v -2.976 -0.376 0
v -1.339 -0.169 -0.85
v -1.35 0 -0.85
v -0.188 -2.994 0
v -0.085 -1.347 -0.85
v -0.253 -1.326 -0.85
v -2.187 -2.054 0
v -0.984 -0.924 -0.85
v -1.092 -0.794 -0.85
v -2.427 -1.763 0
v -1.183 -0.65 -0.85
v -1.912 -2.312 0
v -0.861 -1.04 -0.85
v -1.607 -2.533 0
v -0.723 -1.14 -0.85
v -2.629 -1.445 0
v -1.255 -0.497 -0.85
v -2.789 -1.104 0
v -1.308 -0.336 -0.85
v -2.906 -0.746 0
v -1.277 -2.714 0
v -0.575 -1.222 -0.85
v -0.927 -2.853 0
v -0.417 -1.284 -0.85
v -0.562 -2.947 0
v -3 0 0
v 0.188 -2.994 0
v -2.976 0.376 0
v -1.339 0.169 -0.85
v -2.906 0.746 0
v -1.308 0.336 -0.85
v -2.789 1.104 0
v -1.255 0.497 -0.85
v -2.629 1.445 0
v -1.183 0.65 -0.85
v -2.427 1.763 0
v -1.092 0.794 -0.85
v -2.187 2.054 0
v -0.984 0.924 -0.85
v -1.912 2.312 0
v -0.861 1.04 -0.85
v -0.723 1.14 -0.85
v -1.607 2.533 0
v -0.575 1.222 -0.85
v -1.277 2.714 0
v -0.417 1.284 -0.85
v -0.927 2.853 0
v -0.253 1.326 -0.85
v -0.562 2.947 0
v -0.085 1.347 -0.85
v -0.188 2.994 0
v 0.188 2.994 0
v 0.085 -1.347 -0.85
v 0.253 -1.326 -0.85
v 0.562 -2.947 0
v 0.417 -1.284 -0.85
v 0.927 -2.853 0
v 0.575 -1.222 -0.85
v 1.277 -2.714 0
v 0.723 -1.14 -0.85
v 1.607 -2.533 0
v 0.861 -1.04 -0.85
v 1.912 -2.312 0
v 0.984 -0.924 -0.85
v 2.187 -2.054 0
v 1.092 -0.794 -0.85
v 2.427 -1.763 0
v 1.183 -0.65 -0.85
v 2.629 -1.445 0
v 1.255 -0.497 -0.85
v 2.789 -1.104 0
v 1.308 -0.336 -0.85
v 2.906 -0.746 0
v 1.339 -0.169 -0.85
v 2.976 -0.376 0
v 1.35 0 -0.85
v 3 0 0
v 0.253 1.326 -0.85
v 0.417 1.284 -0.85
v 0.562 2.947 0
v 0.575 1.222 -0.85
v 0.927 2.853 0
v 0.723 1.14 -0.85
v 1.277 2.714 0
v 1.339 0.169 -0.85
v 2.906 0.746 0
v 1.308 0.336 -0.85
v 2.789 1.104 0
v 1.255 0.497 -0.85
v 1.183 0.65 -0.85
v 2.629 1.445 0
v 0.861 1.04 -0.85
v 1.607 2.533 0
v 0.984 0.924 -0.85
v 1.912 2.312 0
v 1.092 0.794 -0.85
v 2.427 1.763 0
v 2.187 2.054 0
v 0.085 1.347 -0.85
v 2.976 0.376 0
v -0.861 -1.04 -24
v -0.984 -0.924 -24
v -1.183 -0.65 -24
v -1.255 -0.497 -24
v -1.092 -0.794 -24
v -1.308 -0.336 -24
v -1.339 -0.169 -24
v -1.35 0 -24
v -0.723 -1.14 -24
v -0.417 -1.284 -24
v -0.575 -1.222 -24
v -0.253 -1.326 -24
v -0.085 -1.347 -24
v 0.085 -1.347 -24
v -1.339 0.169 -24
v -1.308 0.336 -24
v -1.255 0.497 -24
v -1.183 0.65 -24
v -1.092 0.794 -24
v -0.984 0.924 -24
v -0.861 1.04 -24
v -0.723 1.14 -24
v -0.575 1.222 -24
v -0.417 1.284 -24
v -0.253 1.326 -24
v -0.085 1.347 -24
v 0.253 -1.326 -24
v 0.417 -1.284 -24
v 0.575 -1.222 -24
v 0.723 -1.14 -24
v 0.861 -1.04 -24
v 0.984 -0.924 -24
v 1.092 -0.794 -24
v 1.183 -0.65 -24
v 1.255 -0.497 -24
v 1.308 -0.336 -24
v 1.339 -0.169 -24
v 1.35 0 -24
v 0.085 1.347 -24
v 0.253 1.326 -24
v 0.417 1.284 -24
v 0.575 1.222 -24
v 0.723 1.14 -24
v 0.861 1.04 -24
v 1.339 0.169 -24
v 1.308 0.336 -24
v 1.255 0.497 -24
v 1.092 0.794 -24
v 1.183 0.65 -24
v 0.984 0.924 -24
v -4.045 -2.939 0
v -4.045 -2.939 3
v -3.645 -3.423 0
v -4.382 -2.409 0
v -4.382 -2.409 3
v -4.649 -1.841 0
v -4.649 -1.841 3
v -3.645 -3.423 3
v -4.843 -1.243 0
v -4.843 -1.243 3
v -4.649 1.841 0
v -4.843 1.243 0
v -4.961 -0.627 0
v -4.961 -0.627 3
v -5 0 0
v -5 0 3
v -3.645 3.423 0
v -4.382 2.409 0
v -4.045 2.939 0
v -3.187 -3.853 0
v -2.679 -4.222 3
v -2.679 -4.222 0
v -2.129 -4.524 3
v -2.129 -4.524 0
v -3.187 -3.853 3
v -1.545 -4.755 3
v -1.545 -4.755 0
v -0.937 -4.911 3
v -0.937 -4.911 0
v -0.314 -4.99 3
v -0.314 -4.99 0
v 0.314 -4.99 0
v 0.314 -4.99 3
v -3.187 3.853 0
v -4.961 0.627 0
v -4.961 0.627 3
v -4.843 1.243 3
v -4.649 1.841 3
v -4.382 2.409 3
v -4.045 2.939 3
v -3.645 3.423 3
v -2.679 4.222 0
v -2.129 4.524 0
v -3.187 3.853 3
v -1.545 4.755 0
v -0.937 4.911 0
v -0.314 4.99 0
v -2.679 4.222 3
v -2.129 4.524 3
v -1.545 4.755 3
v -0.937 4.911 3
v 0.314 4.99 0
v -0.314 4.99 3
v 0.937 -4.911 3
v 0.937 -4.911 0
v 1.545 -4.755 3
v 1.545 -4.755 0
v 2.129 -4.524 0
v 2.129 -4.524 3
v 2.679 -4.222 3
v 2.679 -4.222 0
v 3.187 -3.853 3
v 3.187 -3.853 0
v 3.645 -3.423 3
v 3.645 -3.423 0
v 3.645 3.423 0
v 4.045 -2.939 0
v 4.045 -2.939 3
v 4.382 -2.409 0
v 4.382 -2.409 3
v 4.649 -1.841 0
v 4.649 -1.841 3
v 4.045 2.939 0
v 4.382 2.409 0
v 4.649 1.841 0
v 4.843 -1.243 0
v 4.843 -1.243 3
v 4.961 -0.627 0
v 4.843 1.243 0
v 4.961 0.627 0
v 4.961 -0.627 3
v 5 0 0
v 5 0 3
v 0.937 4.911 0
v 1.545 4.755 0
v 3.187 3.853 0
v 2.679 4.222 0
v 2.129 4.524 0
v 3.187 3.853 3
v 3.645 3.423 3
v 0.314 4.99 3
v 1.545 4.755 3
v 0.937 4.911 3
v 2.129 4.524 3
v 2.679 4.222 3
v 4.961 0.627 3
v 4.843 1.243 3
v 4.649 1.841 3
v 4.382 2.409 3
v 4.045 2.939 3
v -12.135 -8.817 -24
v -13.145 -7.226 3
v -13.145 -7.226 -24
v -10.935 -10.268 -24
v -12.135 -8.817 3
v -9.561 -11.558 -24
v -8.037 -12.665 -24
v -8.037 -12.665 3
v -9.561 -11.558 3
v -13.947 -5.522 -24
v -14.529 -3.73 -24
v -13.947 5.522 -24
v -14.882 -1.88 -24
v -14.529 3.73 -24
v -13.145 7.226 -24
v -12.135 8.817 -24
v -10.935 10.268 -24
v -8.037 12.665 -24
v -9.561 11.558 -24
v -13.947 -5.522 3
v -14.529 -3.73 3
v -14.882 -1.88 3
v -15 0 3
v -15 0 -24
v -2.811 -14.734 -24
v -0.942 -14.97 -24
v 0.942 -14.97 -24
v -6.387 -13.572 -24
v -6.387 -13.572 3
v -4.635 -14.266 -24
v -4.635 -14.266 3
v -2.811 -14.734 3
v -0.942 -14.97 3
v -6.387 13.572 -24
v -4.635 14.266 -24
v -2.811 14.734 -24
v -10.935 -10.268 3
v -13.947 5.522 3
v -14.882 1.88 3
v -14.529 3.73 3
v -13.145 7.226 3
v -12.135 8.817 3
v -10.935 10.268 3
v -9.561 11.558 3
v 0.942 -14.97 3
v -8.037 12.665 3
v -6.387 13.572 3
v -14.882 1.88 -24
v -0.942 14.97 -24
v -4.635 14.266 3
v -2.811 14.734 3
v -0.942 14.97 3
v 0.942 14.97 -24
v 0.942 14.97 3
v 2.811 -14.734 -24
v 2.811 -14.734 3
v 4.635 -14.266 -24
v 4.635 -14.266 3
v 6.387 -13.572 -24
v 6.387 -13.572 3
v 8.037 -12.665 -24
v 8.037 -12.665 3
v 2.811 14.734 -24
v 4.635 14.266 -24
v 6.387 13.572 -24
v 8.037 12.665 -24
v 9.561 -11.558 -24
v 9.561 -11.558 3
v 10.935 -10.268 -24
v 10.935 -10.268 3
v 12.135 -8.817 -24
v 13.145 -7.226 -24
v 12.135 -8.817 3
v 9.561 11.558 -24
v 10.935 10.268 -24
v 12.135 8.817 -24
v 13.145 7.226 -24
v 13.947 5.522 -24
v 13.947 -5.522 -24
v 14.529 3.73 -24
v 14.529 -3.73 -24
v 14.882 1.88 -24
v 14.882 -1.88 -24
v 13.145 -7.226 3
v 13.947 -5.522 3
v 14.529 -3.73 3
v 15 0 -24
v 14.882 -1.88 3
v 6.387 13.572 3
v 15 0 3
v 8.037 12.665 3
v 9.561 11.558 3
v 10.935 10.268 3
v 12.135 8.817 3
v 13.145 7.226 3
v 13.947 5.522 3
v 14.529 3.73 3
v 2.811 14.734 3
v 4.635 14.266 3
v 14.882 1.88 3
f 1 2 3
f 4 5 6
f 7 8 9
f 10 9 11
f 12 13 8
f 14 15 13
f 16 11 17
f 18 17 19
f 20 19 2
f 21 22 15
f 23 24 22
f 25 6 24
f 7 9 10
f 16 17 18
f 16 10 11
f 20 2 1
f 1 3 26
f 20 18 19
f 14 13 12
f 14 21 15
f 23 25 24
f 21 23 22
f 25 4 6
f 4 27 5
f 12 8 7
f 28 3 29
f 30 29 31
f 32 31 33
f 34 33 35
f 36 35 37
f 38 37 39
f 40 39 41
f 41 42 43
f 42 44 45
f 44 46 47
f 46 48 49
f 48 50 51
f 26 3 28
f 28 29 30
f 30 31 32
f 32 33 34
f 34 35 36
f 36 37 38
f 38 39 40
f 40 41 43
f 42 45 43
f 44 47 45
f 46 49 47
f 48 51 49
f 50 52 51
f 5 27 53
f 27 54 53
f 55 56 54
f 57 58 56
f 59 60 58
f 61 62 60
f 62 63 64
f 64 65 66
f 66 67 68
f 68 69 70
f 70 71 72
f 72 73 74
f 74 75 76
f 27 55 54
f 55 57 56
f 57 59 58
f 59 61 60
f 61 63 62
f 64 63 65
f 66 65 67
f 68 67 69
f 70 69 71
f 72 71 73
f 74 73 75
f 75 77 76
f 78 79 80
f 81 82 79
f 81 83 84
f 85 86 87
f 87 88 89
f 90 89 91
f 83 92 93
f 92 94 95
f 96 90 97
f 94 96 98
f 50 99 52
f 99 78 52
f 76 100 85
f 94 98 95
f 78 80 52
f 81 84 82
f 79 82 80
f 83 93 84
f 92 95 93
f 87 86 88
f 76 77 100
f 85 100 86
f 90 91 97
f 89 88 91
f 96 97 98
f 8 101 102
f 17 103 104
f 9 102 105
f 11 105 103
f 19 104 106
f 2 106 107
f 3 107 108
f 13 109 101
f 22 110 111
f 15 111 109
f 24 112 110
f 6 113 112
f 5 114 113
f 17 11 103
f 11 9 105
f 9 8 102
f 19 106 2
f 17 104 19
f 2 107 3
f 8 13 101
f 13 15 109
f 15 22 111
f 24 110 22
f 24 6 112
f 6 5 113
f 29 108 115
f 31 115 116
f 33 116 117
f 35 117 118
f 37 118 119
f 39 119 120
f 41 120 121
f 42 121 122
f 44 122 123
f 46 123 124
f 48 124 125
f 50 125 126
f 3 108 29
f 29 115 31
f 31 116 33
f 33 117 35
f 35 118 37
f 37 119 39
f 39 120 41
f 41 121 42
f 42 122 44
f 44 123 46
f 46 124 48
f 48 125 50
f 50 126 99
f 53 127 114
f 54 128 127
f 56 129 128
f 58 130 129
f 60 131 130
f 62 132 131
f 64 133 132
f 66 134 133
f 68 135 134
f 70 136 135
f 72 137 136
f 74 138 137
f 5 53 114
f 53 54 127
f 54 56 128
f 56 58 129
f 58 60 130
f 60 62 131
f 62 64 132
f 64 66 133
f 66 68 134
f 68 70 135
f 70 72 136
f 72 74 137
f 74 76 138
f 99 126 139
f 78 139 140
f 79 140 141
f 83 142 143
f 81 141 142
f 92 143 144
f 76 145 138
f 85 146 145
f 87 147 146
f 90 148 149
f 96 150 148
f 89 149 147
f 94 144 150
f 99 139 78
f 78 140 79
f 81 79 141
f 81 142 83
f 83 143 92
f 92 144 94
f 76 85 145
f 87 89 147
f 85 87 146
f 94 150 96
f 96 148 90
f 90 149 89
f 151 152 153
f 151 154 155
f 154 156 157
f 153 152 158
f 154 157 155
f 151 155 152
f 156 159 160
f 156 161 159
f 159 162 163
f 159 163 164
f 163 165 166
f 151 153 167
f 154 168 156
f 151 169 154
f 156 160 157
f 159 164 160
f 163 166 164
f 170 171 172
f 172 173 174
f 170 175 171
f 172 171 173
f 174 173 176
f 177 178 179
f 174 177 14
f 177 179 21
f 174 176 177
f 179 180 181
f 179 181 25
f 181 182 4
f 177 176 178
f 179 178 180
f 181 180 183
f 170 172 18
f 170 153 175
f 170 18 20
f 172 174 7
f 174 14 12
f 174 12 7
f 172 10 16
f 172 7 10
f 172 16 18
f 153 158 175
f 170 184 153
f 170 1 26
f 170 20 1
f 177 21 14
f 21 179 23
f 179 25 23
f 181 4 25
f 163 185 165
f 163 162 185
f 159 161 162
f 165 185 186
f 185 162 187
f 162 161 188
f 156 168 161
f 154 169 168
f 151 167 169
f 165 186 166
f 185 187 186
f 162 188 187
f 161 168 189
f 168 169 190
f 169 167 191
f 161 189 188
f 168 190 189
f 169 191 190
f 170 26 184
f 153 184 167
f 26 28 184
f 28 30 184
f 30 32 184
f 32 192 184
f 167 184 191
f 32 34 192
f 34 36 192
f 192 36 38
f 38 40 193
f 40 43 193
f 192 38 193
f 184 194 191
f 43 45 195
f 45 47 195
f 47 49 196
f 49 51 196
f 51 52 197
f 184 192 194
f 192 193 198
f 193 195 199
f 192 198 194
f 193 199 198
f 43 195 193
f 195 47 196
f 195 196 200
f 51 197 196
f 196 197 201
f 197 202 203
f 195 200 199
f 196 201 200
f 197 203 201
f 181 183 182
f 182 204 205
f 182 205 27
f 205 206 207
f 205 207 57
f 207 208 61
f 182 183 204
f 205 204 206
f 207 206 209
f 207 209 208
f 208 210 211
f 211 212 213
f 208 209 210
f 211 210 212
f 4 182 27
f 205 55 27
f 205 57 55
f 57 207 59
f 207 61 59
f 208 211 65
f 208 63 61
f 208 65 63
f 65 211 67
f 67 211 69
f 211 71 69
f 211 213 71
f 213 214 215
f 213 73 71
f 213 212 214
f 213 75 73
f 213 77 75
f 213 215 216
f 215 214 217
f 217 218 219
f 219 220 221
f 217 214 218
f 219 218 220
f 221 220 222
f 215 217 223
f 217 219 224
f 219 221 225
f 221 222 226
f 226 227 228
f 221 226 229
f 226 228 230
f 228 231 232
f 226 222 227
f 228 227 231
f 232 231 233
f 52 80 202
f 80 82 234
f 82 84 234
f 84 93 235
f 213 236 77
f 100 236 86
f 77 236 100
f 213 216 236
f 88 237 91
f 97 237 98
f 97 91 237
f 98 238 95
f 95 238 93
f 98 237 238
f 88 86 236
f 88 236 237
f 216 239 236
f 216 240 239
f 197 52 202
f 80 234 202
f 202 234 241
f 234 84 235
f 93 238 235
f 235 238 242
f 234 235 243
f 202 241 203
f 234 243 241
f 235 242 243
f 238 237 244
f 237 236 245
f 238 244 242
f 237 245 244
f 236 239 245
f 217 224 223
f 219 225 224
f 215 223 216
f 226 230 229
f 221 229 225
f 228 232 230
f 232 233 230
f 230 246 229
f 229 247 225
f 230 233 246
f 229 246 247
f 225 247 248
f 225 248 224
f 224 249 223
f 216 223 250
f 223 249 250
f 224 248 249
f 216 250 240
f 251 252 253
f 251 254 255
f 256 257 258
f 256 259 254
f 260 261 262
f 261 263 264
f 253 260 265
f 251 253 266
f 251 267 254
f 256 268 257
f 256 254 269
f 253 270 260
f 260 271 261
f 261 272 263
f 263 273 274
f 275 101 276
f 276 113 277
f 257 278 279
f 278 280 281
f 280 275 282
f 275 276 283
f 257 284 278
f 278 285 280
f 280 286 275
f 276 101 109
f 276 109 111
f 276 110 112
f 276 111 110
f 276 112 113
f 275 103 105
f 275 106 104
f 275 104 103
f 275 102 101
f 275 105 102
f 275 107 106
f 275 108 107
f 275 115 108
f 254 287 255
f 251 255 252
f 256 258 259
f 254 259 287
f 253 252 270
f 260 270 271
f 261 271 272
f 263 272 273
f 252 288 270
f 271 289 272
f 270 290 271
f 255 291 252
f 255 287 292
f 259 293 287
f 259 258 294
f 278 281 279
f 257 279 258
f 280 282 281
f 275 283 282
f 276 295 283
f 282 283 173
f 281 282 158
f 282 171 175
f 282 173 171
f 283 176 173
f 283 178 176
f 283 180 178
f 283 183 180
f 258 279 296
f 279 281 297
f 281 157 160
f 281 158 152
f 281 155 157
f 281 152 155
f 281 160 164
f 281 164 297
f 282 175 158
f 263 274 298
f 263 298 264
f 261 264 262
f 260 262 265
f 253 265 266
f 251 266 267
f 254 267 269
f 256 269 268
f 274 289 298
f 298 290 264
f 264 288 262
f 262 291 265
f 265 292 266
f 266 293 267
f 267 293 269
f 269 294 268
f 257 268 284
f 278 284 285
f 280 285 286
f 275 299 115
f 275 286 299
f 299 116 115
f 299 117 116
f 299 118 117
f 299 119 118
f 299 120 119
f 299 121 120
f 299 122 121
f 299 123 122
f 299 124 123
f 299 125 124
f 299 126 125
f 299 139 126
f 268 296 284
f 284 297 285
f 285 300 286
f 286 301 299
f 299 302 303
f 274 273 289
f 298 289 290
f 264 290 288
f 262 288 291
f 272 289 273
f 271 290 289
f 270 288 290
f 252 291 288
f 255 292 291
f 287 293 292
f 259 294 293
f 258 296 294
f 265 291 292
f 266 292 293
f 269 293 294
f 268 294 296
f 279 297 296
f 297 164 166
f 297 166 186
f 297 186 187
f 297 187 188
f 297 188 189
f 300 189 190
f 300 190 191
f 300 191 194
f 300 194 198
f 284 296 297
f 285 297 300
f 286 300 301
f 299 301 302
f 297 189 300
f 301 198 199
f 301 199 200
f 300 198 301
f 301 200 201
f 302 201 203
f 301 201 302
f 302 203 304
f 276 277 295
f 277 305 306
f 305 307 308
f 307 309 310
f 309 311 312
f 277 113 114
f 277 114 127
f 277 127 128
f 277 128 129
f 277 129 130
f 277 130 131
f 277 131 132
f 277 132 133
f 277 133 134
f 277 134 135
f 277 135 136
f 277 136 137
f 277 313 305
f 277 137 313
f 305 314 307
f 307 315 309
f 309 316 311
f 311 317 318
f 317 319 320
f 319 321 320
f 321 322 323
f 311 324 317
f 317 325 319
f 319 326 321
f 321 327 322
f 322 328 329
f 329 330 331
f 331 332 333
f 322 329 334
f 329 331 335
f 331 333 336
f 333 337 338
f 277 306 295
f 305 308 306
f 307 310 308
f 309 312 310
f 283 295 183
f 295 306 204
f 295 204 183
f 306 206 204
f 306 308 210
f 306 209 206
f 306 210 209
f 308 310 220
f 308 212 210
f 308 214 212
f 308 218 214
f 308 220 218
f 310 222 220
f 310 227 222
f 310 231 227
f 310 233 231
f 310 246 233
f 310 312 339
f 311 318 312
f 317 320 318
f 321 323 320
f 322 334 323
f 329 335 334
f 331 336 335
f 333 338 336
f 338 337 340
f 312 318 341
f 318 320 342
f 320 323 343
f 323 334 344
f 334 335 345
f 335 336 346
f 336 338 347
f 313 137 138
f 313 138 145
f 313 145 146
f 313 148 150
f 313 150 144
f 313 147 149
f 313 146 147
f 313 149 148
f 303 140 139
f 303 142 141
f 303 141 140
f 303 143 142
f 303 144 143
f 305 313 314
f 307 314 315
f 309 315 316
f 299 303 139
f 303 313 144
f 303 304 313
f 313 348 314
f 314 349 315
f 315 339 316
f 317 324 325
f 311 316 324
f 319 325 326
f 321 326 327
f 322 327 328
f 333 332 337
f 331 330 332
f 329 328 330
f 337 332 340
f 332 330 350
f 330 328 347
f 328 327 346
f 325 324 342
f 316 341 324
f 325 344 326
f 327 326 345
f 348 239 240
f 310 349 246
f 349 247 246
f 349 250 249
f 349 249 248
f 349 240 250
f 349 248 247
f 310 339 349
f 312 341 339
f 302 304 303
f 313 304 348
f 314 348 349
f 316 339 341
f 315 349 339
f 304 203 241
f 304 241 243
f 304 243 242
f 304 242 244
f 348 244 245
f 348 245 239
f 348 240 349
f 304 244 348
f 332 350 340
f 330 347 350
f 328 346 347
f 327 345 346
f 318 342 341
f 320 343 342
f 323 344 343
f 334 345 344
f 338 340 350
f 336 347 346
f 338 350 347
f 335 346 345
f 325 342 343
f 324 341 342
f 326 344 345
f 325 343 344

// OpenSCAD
$fn = 50;

difference() {
	union() {
		translate(v = [0, 0, -24.0]) {
			cylinder(h = 27, r = 15.0);
		}
	}
	union() {
		translate(v = [0, 0, 0]) {
			rotate(a = [0, 0, 0]) {
				difference() {
					union() {
						translate(v = [0, 0, -27.0]) {
							cylinder(h = 27, r = 1.0);
						}
						translate(v = [0, 0, -0.85]) {
							cylinder(h = 0.85, r1 = 1.35, r2 = 3.0);
						}
						translate(v = [0, 0, -27.0]) {
							cylinder(h = 27, r = 1.35);
						}
						translate(v = [0, 0, -27.0]) {
							cylinder(h = 27, r = 1.0);
						}
					}
					union();
				}
			}
		}
		#cylinder(h = 3, r = 5.0);
	}
}
